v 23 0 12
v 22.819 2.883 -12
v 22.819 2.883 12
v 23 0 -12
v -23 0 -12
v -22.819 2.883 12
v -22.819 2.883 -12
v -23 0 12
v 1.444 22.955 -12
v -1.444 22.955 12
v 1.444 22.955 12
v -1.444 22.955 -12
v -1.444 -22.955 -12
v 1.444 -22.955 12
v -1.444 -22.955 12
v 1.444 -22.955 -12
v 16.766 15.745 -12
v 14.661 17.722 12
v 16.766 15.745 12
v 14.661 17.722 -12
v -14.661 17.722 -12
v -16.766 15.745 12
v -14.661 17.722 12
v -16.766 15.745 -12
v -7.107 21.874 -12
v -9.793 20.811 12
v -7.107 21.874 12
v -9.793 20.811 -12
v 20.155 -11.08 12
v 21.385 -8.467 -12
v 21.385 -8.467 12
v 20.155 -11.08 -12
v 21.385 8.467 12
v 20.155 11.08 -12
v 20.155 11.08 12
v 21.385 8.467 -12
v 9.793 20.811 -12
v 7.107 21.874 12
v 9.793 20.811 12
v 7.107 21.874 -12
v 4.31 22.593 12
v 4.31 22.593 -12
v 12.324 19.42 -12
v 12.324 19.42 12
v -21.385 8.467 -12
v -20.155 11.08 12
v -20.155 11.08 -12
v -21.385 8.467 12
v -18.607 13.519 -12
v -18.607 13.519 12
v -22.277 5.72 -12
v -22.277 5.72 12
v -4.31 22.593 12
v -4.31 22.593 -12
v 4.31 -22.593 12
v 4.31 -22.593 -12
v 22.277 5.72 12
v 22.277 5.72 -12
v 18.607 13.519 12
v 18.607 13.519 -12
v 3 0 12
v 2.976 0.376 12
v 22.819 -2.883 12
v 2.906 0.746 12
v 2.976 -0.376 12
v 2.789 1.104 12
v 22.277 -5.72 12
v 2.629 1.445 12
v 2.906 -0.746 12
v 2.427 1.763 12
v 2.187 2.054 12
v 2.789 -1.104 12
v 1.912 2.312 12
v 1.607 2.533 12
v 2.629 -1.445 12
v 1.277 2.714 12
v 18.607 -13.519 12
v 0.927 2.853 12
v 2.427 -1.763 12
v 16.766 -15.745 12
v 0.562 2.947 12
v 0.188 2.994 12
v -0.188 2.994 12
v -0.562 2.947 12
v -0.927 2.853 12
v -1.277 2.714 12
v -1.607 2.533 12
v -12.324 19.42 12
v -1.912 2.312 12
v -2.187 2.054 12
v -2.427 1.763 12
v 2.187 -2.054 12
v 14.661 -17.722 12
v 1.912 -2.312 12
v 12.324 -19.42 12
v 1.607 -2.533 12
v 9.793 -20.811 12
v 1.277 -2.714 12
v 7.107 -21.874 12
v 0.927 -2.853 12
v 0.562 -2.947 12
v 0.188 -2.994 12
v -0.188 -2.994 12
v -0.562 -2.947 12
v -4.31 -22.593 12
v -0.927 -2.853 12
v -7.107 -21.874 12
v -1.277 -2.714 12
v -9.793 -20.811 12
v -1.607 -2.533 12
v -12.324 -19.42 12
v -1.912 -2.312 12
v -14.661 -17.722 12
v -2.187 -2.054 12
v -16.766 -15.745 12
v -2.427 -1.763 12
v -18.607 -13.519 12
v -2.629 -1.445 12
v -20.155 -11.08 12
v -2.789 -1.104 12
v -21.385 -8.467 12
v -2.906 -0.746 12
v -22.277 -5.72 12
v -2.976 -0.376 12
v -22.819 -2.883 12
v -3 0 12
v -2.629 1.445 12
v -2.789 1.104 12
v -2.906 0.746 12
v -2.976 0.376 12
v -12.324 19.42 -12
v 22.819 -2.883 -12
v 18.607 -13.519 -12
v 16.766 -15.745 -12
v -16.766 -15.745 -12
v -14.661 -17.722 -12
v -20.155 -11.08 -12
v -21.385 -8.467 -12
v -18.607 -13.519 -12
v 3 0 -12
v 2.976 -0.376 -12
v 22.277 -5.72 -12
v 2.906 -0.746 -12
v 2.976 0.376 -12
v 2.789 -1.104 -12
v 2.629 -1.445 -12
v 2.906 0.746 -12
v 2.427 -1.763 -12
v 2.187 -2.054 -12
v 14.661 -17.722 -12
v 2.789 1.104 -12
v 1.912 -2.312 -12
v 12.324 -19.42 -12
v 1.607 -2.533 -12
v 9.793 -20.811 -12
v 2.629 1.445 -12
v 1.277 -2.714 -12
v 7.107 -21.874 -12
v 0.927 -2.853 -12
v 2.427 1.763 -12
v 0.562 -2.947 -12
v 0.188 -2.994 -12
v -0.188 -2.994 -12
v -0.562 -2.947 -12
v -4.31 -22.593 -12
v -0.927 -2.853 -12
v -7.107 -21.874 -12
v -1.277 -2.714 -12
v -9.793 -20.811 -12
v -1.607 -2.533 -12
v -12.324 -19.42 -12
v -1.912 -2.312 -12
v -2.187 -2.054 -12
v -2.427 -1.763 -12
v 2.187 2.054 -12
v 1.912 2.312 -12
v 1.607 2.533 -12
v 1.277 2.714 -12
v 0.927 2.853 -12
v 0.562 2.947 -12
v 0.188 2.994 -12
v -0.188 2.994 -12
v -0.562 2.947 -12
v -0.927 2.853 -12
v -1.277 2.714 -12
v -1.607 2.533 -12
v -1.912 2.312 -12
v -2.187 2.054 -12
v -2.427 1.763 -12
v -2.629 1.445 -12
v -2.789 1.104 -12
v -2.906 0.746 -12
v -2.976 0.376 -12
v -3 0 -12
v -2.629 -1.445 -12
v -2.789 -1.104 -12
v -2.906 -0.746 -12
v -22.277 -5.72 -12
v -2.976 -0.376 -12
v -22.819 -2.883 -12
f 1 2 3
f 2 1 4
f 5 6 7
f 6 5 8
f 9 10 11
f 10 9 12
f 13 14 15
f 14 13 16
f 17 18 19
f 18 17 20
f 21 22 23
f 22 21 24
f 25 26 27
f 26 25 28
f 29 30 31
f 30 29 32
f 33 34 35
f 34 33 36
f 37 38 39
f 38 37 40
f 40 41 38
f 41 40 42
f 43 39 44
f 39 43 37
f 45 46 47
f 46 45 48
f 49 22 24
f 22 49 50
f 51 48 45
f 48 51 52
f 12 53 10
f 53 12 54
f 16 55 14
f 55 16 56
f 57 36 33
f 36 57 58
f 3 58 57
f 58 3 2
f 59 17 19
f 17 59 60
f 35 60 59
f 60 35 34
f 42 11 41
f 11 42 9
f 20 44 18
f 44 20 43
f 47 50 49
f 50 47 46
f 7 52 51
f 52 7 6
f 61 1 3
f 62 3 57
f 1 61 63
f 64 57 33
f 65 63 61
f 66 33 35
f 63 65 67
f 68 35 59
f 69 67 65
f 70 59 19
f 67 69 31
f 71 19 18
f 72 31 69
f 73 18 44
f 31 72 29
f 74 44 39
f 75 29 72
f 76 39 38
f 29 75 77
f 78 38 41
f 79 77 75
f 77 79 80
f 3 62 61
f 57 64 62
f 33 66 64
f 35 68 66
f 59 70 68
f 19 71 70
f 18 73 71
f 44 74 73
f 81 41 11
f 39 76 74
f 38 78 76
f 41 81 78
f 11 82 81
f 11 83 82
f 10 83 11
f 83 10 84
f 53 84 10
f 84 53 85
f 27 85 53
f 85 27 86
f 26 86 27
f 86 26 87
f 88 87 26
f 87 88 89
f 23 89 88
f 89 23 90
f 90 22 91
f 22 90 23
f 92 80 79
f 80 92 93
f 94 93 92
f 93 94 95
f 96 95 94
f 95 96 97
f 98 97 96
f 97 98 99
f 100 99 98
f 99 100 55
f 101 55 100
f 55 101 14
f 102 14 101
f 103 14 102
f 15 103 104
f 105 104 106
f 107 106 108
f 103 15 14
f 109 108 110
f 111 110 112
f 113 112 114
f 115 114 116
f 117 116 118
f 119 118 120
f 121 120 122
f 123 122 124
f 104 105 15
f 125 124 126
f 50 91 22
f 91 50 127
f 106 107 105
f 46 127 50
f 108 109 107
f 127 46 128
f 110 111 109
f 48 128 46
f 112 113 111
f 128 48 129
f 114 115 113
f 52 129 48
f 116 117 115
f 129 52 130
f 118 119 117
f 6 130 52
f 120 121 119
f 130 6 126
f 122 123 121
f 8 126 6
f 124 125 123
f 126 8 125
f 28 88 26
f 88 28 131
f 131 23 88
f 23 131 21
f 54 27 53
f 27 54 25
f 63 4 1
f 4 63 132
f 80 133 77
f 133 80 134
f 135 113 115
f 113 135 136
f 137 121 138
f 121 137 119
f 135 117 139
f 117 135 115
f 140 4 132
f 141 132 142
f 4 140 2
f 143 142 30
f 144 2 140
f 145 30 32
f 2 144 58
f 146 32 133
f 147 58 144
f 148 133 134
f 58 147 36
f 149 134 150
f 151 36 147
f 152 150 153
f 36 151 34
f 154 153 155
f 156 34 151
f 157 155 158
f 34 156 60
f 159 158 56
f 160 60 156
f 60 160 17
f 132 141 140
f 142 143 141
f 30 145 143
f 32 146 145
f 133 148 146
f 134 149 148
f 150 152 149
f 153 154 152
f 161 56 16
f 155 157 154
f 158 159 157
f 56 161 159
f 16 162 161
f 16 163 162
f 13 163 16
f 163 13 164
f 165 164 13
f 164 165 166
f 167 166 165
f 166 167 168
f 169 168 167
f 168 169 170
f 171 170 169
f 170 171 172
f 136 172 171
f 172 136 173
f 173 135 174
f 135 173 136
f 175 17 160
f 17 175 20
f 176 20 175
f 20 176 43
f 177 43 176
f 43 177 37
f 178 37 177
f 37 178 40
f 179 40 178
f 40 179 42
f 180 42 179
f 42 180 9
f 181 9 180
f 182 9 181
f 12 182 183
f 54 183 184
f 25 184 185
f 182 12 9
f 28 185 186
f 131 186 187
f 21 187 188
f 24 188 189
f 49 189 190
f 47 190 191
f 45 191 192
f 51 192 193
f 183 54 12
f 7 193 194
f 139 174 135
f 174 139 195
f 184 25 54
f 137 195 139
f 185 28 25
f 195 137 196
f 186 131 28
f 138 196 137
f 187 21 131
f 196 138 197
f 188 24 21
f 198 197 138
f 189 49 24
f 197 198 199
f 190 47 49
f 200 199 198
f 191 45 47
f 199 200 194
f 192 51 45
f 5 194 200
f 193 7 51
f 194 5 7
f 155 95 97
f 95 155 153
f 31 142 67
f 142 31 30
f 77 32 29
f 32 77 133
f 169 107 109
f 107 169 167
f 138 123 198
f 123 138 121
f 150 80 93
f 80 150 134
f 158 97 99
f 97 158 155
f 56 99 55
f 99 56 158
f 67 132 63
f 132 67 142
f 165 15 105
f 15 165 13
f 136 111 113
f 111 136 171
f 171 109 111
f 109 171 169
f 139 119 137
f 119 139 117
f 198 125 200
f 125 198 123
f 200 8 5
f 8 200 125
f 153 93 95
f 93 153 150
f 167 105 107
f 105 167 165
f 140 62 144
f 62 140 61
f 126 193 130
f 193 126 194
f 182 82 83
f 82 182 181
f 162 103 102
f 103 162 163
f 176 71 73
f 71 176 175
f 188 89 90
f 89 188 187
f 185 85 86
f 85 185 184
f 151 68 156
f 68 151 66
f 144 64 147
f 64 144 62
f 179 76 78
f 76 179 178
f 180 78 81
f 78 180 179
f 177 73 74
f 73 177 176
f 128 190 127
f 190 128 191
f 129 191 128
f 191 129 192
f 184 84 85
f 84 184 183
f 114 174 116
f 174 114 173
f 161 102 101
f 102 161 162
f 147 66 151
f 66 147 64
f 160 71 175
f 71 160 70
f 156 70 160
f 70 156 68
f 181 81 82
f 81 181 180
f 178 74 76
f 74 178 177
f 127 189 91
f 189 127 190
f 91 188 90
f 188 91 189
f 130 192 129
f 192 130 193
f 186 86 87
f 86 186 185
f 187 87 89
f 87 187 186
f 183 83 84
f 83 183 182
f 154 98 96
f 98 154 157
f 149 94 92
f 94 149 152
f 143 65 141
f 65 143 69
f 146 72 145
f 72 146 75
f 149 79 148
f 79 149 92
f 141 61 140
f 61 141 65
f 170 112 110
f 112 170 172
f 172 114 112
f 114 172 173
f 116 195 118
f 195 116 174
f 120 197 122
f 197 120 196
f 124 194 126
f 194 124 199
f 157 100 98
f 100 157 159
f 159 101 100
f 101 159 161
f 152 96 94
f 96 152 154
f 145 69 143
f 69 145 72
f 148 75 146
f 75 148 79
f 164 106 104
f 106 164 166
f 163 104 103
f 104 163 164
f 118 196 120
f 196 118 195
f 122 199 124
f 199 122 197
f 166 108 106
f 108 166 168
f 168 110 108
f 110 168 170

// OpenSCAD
$fn = 50;


difference() {
	union() {
		translate(v = [0, 0, -12.0000000000]) {
			cylinder(h = 24, r = 23.0000000000);
		}
	}
	union() {
		translate(v = [0, 0, -100.0000000000]) {
			cylinder(h = 200, r = 3.0000000000);
		}
	}
}
